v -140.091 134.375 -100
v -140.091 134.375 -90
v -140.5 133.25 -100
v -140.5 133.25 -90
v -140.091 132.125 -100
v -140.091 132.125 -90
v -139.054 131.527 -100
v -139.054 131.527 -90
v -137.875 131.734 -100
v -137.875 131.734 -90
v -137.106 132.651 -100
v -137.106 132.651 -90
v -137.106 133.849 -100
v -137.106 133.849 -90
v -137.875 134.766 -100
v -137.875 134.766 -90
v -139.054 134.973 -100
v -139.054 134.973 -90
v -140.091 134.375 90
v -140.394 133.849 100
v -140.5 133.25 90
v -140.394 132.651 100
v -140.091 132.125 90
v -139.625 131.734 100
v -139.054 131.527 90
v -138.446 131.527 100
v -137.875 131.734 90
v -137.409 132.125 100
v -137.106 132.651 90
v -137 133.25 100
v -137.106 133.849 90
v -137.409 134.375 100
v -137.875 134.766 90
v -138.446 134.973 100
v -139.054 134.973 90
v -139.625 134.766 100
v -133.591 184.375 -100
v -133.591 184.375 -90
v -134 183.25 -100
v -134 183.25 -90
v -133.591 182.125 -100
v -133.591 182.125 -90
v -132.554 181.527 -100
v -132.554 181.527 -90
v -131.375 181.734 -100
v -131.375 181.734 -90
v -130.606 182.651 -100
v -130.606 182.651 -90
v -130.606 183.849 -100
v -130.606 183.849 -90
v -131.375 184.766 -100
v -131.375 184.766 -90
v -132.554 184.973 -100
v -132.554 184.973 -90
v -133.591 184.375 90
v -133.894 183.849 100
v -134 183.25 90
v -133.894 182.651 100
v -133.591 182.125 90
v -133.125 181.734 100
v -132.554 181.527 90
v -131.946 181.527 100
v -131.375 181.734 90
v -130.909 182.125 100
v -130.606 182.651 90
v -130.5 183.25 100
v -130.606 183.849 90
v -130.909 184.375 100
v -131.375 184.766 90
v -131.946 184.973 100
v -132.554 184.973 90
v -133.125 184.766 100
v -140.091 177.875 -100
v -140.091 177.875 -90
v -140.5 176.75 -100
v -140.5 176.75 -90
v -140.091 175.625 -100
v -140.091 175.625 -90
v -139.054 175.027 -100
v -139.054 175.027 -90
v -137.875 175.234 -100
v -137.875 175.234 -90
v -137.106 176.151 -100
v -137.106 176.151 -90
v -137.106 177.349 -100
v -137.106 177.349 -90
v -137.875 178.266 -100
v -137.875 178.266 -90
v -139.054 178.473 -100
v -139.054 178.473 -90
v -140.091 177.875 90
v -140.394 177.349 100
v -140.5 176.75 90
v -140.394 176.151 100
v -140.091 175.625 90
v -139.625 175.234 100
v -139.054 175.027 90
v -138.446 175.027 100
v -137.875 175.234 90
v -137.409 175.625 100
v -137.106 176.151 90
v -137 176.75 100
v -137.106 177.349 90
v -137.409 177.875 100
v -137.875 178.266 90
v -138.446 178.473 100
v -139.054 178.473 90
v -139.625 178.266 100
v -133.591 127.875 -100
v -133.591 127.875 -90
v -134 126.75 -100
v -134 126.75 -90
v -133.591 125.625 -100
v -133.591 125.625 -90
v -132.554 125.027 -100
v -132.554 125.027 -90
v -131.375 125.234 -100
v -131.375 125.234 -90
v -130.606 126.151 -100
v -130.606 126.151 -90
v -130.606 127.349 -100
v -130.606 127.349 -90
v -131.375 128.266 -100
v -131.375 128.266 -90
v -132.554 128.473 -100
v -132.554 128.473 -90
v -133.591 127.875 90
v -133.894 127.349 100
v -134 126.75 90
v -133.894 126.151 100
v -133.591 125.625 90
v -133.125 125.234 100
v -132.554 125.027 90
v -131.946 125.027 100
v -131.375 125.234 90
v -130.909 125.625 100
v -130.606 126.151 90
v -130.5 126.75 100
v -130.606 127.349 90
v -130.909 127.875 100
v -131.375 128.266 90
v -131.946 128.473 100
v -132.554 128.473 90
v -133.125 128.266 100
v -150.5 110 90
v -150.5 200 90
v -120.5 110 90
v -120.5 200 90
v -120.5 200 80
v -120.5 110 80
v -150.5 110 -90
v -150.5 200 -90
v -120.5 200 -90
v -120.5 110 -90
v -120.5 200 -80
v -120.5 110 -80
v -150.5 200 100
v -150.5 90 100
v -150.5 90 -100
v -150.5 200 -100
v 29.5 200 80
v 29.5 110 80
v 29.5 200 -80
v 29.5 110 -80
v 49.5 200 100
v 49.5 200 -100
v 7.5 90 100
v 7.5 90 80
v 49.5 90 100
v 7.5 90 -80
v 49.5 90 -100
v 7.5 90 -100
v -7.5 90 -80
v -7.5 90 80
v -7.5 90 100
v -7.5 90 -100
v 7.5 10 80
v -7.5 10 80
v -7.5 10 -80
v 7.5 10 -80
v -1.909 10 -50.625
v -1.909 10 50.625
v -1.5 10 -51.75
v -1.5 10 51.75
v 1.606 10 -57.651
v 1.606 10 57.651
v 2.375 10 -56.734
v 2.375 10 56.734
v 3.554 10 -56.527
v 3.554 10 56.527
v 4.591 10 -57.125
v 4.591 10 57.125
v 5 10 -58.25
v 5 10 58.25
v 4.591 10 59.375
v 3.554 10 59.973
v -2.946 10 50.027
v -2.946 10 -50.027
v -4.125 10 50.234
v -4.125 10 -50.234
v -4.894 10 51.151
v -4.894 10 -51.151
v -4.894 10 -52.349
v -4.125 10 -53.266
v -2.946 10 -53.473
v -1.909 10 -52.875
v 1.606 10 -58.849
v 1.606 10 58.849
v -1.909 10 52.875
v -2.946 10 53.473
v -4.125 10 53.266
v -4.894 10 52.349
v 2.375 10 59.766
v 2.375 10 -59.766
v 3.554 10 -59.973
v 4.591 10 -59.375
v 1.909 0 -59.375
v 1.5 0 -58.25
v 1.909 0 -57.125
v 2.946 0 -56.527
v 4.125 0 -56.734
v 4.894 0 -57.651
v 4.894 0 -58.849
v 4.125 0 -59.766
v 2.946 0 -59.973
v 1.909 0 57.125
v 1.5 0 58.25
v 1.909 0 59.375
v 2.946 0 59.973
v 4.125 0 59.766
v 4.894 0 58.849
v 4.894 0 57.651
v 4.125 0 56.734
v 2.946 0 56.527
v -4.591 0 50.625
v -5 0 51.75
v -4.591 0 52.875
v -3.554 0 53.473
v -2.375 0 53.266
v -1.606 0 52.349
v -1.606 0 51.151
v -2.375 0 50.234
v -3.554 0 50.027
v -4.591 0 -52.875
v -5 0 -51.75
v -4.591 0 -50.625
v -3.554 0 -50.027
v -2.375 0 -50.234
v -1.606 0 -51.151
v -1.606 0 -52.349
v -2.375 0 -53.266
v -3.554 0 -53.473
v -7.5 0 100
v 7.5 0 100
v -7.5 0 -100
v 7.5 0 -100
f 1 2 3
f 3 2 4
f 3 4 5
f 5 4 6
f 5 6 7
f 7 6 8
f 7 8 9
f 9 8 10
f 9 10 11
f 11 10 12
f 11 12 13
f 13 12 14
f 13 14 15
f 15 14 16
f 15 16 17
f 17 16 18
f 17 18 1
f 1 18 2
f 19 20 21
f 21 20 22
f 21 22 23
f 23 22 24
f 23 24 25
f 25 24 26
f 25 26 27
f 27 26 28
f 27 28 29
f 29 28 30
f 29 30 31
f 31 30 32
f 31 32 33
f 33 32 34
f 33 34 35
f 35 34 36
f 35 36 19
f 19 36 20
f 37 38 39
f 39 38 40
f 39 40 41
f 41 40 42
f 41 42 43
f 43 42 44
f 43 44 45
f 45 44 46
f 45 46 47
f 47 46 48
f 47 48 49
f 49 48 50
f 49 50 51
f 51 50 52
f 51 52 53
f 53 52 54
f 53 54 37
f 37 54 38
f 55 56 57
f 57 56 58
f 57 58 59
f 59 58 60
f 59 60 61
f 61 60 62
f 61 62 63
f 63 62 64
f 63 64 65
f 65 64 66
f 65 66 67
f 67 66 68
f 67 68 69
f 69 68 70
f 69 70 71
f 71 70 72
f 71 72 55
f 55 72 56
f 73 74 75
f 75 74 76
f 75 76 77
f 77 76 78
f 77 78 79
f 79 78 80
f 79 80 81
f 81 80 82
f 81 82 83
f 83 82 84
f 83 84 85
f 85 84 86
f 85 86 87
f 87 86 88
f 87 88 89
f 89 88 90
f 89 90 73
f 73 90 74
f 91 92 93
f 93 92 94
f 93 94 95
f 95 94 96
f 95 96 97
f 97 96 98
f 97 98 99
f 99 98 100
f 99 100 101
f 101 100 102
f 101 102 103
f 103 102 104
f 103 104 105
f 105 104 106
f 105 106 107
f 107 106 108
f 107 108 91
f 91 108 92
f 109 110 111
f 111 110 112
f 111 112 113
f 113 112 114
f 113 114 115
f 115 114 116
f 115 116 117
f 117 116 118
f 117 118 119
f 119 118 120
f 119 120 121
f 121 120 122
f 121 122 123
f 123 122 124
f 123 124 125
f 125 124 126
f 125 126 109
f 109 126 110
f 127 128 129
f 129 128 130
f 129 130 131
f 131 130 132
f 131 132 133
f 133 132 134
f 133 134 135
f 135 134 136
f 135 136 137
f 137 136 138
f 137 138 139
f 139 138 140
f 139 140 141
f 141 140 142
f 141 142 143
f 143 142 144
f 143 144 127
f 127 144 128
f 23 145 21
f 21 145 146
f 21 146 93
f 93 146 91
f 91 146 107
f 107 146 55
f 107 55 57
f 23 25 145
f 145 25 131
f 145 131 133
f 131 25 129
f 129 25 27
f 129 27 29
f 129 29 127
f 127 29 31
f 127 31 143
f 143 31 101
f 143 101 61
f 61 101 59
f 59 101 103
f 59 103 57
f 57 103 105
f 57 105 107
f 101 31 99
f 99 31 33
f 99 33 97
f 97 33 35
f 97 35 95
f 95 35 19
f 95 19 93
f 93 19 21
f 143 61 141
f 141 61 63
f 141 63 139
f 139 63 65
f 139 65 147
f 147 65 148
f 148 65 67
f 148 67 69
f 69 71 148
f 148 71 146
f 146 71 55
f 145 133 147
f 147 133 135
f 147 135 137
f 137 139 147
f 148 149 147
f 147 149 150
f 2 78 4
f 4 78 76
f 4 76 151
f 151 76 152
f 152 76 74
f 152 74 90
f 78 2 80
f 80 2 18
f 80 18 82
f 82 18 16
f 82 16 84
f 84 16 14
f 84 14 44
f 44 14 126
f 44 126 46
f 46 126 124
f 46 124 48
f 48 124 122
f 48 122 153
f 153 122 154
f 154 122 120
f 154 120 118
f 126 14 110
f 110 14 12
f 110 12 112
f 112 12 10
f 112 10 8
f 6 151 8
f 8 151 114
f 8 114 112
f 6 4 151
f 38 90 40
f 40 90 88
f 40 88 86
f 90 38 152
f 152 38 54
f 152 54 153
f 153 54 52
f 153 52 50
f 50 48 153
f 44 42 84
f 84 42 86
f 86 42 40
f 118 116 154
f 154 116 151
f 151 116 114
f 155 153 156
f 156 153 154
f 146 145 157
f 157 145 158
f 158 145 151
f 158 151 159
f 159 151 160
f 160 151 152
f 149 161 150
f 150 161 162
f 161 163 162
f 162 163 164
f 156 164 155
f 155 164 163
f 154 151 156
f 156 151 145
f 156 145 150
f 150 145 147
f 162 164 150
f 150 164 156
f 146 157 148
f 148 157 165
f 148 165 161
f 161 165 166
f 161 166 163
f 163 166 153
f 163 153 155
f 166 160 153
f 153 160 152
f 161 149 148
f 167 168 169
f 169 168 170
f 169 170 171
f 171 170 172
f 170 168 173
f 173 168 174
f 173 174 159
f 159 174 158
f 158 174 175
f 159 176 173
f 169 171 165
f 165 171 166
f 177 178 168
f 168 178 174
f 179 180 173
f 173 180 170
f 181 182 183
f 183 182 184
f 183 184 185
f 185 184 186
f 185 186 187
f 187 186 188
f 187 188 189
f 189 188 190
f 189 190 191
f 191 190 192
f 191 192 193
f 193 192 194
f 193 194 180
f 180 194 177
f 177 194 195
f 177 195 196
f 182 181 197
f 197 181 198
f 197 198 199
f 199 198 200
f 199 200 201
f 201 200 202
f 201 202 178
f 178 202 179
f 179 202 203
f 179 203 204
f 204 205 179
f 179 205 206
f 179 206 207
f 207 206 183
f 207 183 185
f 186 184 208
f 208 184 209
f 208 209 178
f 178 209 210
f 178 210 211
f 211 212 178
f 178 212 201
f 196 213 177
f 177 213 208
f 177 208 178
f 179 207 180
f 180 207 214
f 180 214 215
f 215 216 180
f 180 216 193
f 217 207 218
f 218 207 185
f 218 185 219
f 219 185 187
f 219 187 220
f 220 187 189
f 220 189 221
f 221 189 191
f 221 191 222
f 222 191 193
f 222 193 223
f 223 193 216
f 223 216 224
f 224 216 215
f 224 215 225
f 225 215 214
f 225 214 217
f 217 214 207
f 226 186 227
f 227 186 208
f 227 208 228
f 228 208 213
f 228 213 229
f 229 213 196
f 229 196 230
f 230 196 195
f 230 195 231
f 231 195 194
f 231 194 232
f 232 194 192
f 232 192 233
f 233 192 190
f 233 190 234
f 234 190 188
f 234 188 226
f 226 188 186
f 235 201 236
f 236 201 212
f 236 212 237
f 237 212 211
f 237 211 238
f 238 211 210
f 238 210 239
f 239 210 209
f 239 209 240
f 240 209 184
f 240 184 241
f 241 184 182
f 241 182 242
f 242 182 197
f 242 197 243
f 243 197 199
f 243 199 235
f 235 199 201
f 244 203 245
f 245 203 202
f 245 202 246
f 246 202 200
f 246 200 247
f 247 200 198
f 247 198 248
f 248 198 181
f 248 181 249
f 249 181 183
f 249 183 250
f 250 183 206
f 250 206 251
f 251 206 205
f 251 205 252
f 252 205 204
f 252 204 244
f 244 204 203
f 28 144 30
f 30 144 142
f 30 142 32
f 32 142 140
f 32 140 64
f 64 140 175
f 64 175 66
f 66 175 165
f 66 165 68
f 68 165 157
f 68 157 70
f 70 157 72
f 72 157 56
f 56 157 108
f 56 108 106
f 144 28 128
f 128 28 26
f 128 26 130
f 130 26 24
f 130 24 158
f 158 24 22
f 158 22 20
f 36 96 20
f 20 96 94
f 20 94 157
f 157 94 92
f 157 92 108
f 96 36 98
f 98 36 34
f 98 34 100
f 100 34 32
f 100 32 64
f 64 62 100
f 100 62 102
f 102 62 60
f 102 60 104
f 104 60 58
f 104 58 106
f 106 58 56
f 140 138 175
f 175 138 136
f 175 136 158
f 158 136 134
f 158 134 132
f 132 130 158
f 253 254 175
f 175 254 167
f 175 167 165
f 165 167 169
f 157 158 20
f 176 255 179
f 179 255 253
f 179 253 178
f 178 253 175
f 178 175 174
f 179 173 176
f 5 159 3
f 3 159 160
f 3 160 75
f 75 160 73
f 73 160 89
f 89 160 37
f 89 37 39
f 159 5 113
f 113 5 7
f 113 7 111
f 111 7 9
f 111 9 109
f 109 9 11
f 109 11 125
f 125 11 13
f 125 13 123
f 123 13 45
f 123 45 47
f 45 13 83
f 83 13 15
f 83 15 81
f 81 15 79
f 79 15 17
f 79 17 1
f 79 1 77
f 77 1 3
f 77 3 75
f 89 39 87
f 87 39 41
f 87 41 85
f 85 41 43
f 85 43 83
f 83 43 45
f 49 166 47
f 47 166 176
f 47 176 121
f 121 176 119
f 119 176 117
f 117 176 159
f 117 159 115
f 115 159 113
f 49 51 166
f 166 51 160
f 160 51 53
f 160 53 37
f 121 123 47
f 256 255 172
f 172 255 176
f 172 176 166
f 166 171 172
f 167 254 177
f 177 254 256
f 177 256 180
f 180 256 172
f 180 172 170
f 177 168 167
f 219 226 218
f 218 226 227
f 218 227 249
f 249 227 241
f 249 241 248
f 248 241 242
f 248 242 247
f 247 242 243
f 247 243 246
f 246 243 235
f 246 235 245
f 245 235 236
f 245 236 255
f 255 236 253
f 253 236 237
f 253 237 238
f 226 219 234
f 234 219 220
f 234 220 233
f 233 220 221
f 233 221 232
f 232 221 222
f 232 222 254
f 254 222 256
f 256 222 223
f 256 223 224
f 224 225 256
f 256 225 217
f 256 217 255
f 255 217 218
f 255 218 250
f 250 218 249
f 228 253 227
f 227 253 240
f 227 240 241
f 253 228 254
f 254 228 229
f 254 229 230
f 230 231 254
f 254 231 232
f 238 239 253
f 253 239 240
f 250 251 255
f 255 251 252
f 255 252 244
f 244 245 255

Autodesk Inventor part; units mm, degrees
ref_plane "YZ Plane" through (0, 0, 0) normal (1, 0, 0) x (0, 1, 0)
ref_plane "XZ Plane" through (0, 0, 0) normal (0, 1, 0) x (-1, 0, 0)
ref_plane "XY Plane" through (0, 0, 0) normal (0, 0, 1) x (1, 0, 0)
sketch "Boceto2" plane through (0, 0, 0) normal (0, 1, 0) x (-1, 0, 0)
  line L0 (7.5, 100) -> (-7.5, 100)
  line L1 (-7.5, 100) -> (-7.5, -100)
  line L2 (-7.5, -100) -> (7.5, -100)
  line L3 (7.5, -100) -> (7.5, 100)
  line L4 (7.5, 100) -> (-7.5, -100) construction
  line L5 (-7.5, 100) -> (7.5, -100) construction
  point P0 (0, 0)
  dimension "d7" = 15
  dimension "d8" = 200
extrude "Extrusión1" add sketch "Boceto2" along normal blind 10
sketch "Boceto3" plane through (0, 10, 0) normal (0, 1, 0) x (1, 0, 0)
  circle A0 centre (3.25, 58.25) radius 1.75
  line L0 (5, 50) -> (-5, 50)
  line L1 (-5, 50) -> (-5, 60)
  line L2 (-5, 60) -> (5, 60)
  line L3 (5, 60) -> (5, 50)
  line L4 (5, 50) -> (-5, 60) construction
  line L5 (-5, 50) -> (5, 60) construction
  circle A1 centre (-3.25, 51.75) radius 1.75
  line L6 (7.5, 100) -> (-7.5, 100) projected
  line L7 (-7.5, 0) -> (3.408, 0)
  line L8 (5, -60) -> (5, -50)
  line L9 (-5, -60) -> (5, -60)
  line L10 (5, -50) -> (-5, -50)
  line L11 (-5, -50) -> (-5, -60)
  line L12 (-5, -50) -> (5, -60) construction
  circle A2 centre (-3.25, -51.75) radius 1.75
  line L13 (5, -50) -> (-5, -60) construction
  circle A3 centre (3.25, -58.25) radius 1.75
  line L14 (-7.5, -100) -> (7.5, -100) projected
  point P0 (0, 0)
  point P1 (-5, 55)
  point P2 (0, 100)
  point P3 (-5, -55)
  dimension "d11" = 3.5
  dimension "d12" = 1.75
  dimension "d13" = 1.75
  dimension "d14" = 1.75
  dimension "d15" = 1.75
  dimension "d16" = 10
  dimension "d17" = 10
  dimension "d19" = 40
  dimension "d81" = 40
hole "Agujero1" at (3.25, 10, 58.25) at (-3.25, 10, 51.75) at (3.25, 10, -58.25) at (-3.25, 10, -51.75) direction (0, -1, 0) diameter 3.5 end through all
sketch "Boceto4" plane through (0, 10, 0) normal (0, 1, 0) x (1, 0, 0)
  line L0 (-7.5, 100) -> (-7.5, -100) projected
  line L1 (-7.5, -100) -> (7.5, -100)
  line L2 (7.5, -100) -> (7.5, -80)
  line L3 (7.5, -80) -> (-7.5, -80)
  line L4 (-7.5, -80) -> (-7.5, -100)
  line L5 (-7.5, 0) -> (1.0116, 0)
  line L6 (-7.5, -100) -> (-7.5, 100)
  line L7 (-7.5, 100) -> (7.5, 100)
  line L8 (7.5, 100) -> (7.5, 80)
  line L9 (7.5, 80) -> (-7.5, 80)
  line L10 (-7.5, 80) -> (-7.5, 100)
  point P0 (0, 0)
  point P1 (-7.5, -80)
  point P2 (-7.5, 80)
  dimension "d27" = 15
  dimension "d28" = 20
extrude "Extrusión2" add sketch "Boceto4" along normal blind 80
sketch "Boceto5" plane through (0, 90, 0) normal (0, 1, 0) x (1, 0, 0)
  line L0 (-7.5, -100) -> (7.5, -100) projected
  line L1 (-7.5, -100) -> (49.5, -100)
  line L2 (49.5, -100) -> (49.5, 100)
  line L3 (49.5, 100) -> (-7.5, 100)
  line L4 (-7.5, 100) -> (-7.5, -100)
  line L5 (49.5, -100) -> (-150.5, -100)
  line L6 (-150.5, -100) -> (-150.5, 100)
  line L7 (-150.5, 100) -> (49.5, 100)
  line L8 (49.5, 100) -> (49.5, -100)
  point P0 (0, 0)
  point P1 (-7.5, 100)
  dimension "d31" = 57
  dimension "d32" = 200
  dimension "d75" = 200
extrude "Extrusión3" add sketch "Boceto5" along normal blind 110
sketch "Boceto6" plane through (0, 200, 0) normal (0, 1, 0) x (1, 0, 0)
  line L0 (49.5, 100) -> (7.5, 100) projected
  line L1 (49.5, 100) -> (29.5, 100)
  line L2 (29.5, 100) -> (29.5, 80)
  line L3 (7.5, -100) -> (49.5, -100) projected
  line L4 (28.5, -100) -> (28.5, -80)
  line L5 (-150.5, 100) -> (-150.5, -100) projected
  line L6 (29.5, 80) -> (-150.5, 80)
  line L7 (-150.5, 80) -> (-150.5, -80)
  line L8 (-150.5, -80) -> (29.5, -80)
  line L9 (29.5, -80) -> (29.5, 80)
  line L10 (-150.5, -100) -> (49.5, -100) projected
  point P0 (7.5, 80)
  point P1 (-50.5, -100)
  dimension "d36" = 20
  dimension "d37" = 20
  dimension "d38" = 20
  dimension "d77" = 20
extrude "Extrusión4" cut sketch "Boceto6" against normal blind 90 contours L8 L5 L6 L9
sketch "Boceto7" plane through (-150.5, 90, -100) normal (-1, 0, 0) x (0, 0, 1)
  line L0 (0, 110) -> (20, 110) projected
  line L1 (20, 110) -> (10, 110)
  line L2 (10, 110) -> (10, 20)
  line L3 (10, 20) -> (20, 20)
  line L4 (20, 20) -> (20, 110)
  line L5 (180, 110) -> (180, 20) projected
  line L6 (180, 110) -> (190, 110)
  line L7 (190, 110) -> (190, 20)
  line L8 (190, 20) -> (180, 20)
  line L9 (180, 20) -> (180, 110)
  line L10 (200, 0) -> (200, 110) projected
  line L11 (0, 0) -> (0, 110) projected
  line L12 (0, 110) -> (10, 110)
  line L13 (10, 110) -> (10, 20)
  line L14 (10, 20) -> (0, 20)
  line L15 (0, 20) -> (0, 110)
  line L16 (200, 110) -> (0, 110) projected
  line L17 (200, 110) -> (190, 110)
  line L18 (190, 110) -> (190, 20)
  line L19 (190, 20) -> (200, 20)
  line L20 (200, 20) -> (200, 110)
  point P0 (100, -90)
  dimension "d63" = 10
  dimension "d65" = 10
  dimension "d76" = 10
extrude "Extrusión5" cut sketch "Boceto7" against normal blind 30 contours L6 L7 L8 L5 | L0 L4 L3 L2
sketch "Boceto8" plane through (-7.5, 0, 100) normal (0, 0, 1) x (1, 0, 0)
  line L0 (-113, 110) -> (-113, 200) projected
  line L1 (-113, 200) -> (-113, 110)
  circle A0 centre (-124.75, 183.25) radius 1.75
  line L2 (-123, 175) -> (-133, 175)
  line L3 (-133, 175) -> (-133, 185)
  line L4 (-133, 185) -> (-123, 185)
  line L5 (-123, 185) -> (-123, 175)
  line L6 (-123, 175) -> (-133, 185) construction
  line L7 (-133, 175) -> (-123, 185) construction
  circle A1 centre (-131.25, 176.75) radius 1.75
  line L8 (-143, 200) -> (57, 200) projected
  line L9 (-143, 90) -> (-143, 200) projected
  line L10 (-113, 155) -> (-128, 155)
  line L11 (-123, 125) -> (-123, 135)
  line L12 (-133, 125) -> (-123, 125)
  line L13 (-123, 135) -> (-133, 125) construction
  line L14 (-123, 135) -> (-133, 135)
  line L15 (-133, 135) -> (-123, 125) construction
  circle A2 centre (-131.25, 133.25) radius 1.75
  line L16 (-133, 135) -> (-133, 125)
  circle A3 centre (-124.75, 126.75) radius 1.75
  line L17 (-143, 110) -> (-113, 110) projected
  point P0 (7.5, 0)
  point P1 (-133, 180)
  point P2 (-123, 180)
  point P3 (-133, 130)
  point P4 (-123, 130)
  dimension "d45" = 3.5
  dimension "d46" = 1.75
  dimension "d47" = 1.75
  dimension "d48" = 1.75
  dimension "d49" = 1.75
  dimension "d50" = 10
  dimension "d51" = 10
  dimension "d52" = 15
  dimension "d53" = 10
  dimension "d54" = 10
  dimension "d55" = 15
hole "Agujero2" at (-132.25, 183.25, 100) at (-138.75, 176.75, 100) at (-138.75, 133.25, 100) at (-132.25, 126.75, 100) direction (0, 0, -1) diameter 3.5 end through all
properties part number "container_front"
